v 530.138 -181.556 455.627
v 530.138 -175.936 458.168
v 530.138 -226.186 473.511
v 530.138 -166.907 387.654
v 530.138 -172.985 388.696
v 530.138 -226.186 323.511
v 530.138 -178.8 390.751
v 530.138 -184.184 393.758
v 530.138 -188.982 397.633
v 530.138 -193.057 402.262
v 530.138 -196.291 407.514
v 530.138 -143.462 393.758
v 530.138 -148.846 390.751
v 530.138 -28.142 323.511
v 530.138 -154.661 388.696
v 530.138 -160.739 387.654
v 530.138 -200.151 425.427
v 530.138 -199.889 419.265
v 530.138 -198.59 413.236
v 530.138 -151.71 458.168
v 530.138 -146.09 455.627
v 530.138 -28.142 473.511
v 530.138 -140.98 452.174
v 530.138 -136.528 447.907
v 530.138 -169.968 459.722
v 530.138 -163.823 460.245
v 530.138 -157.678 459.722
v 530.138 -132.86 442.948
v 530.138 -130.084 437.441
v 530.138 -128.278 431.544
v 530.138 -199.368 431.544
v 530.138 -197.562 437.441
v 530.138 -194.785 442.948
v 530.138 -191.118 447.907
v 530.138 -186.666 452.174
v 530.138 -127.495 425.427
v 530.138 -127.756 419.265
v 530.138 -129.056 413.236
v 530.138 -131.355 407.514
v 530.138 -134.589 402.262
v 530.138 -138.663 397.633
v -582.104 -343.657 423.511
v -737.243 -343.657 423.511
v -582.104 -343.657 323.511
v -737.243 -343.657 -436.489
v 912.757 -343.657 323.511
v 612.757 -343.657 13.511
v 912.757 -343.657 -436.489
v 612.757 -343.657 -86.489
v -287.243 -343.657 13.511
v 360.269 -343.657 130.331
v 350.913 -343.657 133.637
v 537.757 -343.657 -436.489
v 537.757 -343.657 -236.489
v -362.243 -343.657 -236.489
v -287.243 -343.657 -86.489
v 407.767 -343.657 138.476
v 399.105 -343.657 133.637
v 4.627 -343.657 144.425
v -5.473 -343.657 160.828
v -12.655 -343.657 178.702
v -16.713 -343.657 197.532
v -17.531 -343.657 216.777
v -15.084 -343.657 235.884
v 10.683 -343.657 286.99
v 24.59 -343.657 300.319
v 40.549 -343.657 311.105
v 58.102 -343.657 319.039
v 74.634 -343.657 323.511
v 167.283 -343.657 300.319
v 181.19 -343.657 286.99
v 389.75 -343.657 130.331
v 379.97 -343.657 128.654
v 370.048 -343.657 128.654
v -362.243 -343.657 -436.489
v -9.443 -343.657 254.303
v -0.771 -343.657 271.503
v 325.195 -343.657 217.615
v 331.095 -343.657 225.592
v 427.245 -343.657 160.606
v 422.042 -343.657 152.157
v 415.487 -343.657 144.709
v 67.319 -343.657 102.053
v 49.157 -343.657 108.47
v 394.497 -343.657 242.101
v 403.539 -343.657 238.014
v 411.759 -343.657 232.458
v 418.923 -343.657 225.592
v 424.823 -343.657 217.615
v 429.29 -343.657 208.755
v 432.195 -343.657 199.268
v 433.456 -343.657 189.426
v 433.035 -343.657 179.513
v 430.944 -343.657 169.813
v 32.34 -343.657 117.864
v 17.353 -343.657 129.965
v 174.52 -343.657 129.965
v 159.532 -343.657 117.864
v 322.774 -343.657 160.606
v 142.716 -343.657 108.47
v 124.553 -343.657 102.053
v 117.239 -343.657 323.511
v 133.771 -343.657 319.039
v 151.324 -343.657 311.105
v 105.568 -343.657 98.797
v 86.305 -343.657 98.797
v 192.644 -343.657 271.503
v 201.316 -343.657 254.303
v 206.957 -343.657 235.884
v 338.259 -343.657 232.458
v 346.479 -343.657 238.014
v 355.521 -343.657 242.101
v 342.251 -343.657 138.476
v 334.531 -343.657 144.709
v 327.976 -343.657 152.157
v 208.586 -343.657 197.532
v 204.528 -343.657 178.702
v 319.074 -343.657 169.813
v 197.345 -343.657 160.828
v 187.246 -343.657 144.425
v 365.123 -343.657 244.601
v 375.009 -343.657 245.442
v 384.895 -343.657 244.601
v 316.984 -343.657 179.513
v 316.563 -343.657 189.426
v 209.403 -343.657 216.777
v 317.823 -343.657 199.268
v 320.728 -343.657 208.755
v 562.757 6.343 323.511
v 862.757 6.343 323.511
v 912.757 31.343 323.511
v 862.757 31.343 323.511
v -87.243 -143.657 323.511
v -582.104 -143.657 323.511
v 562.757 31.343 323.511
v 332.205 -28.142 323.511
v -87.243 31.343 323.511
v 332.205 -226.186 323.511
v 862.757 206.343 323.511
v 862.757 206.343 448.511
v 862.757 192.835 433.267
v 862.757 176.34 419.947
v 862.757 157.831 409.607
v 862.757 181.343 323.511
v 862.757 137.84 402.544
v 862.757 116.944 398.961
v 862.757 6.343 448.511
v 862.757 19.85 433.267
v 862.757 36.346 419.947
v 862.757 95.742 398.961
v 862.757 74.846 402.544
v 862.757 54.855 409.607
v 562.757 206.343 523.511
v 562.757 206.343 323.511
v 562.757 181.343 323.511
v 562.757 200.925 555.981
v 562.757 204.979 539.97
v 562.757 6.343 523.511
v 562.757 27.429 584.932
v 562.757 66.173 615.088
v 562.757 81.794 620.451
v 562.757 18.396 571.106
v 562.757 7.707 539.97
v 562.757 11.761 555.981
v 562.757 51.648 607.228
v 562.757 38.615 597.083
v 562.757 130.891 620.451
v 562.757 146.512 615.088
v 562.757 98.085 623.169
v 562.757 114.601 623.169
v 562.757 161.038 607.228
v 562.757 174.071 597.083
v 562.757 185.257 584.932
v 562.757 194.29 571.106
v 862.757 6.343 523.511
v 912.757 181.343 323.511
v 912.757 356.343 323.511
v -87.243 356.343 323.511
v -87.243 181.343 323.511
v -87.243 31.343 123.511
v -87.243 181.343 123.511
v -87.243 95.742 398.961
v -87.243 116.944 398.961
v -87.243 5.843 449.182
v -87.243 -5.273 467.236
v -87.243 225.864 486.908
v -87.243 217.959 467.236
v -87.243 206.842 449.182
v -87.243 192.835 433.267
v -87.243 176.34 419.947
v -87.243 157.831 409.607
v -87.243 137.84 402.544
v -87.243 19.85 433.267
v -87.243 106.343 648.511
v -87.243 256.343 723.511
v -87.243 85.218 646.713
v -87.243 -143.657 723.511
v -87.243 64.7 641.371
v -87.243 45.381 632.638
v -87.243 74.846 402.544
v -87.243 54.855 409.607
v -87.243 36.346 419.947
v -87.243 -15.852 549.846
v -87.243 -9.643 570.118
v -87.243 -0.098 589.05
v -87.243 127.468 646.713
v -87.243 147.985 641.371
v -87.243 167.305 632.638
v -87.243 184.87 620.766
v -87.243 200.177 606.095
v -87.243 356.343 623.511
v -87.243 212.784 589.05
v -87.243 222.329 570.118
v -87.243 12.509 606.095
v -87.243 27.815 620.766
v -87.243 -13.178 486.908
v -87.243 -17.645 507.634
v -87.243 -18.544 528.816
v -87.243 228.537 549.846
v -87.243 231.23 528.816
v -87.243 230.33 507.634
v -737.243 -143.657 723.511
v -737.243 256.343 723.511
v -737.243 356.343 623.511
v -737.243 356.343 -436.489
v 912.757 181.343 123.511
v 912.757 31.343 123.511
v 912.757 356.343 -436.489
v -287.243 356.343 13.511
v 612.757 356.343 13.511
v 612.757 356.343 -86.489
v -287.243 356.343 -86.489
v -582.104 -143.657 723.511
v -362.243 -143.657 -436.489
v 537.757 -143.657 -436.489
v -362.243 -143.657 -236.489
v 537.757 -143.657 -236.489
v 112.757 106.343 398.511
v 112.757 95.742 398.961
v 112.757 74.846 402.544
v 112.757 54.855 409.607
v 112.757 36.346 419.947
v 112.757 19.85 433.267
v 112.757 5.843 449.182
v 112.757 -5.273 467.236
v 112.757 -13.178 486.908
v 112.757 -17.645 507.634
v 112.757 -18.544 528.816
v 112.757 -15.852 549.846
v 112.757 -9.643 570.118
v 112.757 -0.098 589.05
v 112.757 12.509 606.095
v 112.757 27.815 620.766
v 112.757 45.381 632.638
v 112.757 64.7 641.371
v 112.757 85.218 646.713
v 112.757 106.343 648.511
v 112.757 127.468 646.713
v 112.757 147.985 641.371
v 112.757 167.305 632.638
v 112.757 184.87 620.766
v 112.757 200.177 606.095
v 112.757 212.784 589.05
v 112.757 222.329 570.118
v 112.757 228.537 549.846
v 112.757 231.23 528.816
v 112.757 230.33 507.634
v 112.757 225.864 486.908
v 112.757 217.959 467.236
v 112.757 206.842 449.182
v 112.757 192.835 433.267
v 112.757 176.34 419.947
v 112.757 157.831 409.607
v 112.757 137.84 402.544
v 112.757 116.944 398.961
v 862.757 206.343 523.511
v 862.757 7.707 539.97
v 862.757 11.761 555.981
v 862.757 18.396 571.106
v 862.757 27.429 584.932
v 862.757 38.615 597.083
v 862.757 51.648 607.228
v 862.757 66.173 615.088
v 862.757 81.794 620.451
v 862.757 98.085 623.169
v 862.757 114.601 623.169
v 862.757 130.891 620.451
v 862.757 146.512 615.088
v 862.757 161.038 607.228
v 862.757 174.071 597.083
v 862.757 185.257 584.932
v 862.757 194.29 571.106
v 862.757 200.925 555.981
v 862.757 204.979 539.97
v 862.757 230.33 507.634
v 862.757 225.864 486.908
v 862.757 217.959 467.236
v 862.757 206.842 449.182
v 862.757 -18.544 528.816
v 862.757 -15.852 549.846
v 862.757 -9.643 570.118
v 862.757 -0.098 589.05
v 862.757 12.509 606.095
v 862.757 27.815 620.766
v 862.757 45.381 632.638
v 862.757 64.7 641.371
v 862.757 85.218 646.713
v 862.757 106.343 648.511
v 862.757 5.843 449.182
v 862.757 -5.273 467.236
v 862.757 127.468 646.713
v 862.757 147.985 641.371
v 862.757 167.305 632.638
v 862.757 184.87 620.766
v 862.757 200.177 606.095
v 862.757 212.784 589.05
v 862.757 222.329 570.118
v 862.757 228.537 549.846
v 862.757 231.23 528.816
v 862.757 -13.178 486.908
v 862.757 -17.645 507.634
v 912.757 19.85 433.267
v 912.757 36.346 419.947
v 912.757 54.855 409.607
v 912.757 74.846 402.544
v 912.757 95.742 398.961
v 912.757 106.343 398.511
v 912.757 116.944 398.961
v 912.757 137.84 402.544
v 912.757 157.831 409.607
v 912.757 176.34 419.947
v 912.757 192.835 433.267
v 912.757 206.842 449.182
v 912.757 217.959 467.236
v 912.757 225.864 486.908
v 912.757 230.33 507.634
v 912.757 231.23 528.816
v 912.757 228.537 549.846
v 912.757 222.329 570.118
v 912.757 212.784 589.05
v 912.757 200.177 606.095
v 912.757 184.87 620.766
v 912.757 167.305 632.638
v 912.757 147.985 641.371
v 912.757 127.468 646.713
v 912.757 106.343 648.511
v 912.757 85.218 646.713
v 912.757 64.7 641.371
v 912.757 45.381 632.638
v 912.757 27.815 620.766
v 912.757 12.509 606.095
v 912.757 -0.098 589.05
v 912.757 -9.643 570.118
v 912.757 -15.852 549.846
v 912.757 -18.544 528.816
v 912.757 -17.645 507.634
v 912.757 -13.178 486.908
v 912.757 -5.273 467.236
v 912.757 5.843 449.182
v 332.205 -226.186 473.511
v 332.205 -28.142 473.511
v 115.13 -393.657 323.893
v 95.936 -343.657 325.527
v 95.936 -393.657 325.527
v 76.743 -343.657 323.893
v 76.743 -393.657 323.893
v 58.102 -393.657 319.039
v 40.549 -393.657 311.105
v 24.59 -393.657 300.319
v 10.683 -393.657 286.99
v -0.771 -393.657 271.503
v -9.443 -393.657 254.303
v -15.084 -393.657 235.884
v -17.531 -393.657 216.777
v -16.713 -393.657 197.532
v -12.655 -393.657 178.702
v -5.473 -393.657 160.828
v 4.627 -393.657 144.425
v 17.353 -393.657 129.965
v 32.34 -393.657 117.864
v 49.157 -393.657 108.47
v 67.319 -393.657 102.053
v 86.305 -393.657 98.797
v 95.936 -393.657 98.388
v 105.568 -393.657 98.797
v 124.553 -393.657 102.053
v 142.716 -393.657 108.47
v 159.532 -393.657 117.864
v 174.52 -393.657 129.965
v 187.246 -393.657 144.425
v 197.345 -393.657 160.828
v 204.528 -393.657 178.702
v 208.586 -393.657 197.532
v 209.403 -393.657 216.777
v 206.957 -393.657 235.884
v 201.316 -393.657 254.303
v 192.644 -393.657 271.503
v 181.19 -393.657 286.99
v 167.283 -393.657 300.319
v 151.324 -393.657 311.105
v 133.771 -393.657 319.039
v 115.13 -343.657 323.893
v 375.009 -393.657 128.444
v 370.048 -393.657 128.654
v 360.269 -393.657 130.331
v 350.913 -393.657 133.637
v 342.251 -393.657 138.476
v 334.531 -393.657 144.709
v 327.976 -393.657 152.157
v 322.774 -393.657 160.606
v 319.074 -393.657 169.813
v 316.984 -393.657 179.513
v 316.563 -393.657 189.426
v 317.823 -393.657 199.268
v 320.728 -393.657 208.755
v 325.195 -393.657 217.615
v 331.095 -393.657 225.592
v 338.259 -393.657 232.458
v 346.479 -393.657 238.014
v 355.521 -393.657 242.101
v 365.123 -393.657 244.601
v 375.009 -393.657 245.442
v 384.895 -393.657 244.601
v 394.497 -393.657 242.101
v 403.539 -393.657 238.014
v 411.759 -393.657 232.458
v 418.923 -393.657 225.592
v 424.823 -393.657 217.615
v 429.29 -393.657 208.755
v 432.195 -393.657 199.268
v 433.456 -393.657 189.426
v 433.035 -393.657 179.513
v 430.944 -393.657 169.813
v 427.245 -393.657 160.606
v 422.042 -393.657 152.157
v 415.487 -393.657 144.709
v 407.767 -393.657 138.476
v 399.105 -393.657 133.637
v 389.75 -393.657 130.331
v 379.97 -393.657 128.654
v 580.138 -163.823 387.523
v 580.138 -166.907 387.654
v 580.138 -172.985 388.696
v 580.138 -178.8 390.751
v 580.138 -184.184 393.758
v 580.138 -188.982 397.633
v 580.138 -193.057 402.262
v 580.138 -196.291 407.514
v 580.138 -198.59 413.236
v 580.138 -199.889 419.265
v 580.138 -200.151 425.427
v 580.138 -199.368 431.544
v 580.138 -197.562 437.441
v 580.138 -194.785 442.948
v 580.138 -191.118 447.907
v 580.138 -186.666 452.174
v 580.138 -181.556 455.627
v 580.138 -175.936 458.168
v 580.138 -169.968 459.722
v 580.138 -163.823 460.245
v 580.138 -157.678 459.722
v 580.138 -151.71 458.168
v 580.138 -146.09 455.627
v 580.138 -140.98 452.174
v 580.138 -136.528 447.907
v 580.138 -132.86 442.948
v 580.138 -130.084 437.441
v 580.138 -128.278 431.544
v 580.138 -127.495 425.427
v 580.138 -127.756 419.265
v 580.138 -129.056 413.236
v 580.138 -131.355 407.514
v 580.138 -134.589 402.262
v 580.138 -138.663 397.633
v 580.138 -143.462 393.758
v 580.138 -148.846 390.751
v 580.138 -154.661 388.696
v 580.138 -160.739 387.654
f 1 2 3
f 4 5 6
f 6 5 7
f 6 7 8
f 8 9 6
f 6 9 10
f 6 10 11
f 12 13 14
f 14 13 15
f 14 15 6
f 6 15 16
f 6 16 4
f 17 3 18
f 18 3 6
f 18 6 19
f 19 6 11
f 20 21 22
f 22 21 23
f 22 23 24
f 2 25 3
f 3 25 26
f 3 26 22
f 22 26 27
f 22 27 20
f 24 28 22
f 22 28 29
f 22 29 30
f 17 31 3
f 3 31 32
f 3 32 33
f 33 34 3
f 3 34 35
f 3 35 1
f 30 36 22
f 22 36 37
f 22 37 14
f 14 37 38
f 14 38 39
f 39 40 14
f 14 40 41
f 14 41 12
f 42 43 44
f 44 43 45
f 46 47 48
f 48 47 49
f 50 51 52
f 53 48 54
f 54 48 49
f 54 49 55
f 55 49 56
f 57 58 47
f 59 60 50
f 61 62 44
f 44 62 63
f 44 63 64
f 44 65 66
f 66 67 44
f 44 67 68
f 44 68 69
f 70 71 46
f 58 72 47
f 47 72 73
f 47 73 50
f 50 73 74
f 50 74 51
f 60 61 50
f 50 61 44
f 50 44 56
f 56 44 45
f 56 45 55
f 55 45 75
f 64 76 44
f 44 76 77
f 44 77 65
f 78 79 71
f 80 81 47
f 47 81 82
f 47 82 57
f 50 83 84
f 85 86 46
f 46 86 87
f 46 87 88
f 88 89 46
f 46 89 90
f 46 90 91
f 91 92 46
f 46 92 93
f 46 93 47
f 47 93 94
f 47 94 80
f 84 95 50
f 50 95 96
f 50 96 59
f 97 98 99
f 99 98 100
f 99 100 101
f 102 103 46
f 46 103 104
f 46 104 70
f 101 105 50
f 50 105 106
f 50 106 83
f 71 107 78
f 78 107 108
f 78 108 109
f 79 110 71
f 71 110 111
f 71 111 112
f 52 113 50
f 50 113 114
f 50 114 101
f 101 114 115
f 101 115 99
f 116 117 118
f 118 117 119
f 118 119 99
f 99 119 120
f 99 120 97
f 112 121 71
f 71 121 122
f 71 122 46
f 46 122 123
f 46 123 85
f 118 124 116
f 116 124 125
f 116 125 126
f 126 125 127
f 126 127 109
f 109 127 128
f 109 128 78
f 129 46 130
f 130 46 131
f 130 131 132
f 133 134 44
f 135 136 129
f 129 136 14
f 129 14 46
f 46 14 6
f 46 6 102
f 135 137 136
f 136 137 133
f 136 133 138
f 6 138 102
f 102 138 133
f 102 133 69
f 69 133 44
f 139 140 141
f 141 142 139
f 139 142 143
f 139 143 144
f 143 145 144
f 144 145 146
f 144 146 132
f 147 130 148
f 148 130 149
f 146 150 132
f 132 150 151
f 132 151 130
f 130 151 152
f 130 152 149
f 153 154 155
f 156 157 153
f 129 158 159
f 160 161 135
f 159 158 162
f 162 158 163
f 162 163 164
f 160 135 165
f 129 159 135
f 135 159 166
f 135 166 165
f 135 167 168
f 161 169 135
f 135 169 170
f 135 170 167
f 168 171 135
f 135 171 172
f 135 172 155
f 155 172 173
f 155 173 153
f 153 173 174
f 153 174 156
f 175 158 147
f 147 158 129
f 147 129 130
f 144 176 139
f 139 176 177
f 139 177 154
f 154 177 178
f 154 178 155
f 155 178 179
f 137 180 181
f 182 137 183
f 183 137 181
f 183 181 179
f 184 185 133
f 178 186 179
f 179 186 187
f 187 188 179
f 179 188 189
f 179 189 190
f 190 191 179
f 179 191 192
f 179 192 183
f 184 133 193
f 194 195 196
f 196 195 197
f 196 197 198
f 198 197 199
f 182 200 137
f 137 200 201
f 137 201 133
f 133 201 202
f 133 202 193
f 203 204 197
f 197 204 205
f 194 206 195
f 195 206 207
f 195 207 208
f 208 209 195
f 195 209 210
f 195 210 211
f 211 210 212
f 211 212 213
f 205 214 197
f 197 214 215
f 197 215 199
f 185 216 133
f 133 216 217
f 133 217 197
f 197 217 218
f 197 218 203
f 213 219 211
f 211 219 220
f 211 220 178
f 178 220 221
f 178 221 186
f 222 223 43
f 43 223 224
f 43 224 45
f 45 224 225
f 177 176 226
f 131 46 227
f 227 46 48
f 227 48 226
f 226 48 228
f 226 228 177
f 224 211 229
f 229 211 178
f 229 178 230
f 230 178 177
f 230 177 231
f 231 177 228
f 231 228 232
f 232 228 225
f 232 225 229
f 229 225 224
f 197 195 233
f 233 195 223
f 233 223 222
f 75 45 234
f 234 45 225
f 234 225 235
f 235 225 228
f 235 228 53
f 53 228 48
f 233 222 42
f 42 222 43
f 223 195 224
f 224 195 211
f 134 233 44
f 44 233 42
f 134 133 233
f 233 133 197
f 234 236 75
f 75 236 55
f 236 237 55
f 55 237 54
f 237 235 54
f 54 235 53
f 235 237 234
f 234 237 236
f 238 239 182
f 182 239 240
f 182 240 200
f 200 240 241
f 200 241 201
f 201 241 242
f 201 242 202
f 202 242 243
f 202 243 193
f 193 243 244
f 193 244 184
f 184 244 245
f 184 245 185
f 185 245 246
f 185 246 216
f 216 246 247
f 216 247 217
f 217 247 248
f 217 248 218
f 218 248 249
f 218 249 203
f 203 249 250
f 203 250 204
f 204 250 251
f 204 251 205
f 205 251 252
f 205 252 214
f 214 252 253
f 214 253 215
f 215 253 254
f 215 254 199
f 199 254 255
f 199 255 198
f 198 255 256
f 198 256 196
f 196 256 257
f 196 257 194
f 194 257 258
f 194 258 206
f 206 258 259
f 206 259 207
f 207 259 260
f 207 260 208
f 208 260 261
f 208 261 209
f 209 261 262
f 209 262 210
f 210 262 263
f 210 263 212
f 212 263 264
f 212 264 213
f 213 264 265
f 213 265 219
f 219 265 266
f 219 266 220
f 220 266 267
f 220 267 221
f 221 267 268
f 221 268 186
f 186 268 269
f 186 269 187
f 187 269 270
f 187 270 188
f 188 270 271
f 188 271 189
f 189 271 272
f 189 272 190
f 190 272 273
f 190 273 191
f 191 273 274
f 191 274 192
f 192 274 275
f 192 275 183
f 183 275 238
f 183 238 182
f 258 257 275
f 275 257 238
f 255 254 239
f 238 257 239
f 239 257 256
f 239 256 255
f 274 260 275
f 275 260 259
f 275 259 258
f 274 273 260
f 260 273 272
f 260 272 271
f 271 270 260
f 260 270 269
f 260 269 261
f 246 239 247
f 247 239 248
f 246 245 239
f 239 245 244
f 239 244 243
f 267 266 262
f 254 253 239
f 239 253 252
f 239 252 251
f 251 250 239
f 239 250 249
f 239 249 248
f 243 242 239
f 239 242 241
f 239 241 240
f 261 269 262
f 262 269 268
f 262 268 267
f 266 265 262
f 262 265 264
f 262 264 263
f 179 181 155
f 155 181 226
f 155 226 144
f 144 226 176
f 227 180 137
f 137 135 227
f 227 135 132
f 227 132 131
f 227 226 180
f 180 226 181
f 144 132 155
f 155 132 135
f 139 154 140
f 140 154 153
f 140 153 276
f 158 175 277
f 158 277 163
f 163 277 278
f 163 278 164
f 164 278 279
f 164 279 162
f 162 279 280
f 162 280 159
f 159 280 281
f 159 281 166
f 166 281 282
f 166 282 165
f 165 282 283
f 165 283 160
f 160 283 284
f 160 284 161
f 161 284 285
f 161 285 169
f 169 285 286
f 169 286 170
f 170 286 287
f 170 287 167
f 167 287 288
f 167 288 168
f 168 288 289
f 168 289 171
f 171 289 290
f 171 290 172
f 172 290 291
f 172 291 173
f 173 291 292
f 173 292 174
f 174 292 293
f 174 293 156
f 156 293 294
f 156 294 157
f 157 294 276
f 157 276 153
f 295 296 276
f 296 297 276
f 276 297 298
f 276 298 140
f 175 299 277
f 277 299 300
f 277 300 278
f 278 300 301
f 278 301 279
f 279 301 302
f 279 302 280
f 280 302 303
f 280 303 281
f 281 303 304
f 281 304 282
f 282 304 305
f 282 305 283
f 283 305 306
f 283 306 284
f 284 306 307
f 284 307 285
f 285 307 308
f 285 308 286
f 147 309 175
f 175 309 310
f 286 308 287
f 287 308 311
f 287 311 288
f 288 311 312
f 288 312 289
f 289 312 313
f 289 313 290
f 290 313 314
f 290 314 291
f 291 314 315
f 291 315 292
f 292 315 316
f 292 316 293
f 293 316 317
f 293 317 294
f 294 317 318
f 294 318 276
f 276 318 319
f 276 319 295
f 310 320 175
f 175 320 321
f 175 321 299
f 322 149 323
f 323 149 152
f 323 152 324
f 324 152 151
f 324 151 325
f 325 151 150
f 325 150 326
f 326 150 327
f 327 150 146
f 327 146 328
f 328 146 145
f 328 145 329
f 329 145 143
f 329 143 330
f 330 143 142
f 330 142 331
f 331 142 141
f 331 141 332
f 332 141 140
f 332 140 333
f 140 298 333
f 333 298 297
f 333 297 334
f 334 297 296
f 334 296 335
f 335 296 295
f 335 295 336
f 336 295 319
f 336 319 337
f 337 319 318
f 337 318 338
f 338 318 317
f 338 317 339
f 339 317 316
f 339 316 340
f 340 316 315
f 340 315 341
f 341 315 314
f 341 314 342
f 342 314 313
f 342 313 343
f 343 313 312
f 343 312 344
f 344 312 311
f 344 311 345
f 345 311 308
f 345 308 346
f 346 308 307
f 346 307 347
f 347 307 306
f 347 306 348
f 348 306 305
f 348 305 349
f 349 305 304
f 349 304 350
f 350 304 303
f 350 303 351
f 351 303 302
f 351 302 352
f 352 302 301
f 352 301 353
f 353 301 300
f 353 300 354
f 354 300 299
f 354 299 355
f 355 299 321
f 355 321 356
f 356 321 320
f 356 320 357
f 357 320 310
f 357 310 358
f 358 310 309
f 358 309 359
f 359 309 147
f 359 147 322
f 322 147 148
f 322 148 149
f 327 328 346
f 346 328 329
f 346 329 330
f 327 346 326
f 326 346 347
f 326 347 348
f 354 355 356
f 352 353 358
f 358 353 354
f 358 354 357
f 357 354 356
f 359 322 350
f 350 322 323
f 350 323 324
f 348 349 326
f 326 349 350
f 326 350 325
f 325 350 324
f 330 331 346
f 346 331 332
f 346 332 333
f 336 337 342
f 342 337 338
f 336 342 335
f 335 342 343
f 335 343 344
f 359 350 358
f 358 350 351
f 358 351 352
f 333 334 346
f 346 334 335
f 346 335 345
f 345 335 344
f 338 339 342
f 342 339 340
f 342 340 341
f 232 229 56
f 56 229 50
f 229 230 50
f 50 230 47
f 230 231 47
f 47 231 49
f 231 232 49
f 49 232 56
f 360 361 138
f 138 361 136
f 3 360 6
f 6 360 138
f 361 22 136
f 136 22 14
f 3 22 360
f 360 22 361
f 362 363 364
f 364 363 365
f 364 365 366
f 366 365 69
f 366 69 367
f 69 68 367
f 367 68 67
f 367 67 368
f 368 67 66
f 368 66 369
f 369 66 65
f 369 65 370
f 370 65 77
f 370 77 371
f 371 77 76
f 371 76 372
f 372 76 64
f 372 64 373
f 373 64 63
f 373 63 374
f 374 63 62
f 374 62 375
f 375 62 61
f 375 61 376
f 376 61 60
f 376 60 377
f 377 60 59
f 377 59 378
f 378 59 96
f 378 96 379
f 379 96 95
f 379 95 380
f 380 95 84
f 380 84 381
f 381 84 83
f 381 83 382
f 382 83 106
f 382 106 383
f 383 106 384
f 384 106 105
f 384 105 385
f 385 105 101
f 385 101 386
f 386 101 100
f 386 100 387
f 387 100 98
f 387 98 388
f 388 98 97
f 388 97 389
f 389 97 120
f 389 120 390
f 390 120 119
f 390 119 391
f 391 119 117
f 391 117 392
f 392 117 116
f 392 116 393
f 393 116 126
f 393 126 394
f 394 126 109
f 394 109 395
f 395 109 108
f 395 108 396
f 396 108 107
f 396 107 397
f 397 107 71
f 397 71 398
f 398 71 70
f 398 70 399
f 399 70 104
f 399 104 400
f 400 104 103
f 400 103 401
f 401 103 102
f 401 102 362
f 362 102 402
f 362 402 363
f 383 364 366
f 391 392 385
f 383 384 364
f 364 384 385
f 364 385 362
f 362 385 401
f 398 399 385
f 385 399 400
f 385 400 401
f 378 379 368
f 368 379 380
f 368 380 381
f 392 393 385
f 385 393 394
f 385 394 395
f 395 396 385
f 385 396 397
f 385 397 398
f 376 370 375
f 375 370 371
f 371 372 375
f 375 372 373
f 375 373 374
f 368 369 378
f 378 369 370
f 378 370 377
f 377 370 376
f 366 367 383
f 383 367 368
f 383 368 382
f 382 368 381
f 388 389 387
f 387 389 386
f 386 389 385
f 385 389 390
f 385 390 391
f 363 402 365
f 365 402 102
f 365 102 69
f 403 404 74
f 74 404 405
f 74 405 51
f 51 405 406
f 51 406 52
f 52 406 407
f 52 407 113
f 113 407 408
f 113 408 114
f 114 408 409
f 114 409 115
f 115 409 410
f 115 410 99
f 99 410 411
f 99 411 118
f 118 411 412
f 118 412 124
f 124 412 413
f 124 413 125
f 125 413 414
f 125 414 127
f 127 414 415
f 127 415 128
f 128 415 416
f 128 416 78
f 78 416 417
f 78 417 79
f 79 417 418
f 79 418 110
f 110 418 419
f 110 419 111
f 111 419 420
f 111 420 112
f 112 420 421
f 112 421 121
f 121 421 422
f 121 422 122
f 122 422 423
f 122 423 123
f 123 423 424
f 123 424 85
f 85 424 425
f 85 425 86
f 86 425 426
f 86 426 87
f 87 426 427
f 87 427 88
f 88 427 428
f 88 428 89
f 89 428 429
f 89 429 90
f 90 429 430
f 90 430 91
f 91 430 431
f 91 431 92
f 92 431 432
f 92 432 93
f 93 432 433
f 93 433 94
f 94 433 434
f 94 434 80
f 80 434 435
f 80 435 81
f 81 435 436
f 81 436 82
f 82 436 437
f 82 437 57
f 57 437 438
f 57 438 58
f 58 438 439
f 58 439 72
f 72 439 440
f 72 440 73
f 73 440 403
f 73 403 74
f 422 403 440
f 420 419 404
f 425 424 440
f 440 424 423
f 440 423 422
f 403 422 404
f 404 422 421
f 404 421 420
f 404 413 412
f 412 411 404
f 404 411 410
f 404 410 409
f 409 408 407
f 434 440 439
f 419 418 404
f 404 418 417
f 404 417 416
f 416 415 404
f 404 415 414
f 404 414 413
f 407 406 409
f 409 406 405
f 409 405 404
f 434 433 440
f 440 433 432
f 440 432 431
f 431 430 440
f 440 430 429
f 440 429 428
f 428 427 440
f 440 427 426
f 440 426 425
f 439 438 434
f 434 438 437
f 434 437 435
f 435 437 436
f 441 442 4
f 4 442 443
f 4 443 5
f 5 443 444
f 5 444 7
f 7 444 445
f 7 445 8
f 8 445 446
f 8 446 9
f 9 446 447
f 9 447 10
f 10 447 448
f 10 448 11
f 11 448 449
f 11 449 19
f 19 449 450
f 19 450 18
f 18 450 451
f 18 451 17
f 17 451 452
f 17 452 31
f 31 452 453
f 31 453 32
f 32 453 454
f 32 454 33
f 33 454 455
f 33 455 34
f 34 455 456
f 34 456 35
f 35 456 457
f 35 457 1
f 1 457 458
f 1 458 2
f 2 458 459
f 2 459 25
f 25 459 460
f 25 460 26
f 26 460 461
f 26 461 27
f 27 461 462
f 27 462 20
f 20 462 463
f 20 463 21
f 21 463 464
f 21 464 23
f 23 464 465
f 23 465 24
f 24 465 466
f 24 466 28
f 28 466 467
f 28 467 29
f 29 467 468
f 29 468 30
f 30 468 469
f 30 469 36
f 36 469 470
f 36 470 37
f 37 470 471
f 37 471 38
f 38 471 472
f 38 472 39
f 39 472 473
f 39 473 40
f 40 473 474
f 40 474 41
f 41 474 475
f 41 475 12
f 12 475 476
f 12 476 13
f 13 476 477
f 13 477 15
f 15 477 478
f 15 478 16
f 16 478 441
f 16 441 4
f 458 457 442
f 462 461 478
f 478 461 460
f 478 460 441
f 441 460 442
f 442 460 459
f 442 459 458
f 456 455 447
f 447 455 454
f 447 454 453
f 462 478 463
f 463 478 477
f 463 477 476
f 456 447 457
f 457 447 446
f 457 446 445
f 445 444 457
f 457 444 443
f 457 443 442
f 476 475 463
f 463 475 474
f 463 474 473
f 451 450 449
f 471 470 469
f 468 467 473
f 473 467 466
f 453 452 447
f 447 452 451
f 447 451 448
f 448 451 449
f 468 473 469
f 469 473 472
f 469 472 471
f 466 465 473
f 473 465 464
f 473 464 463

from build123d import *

# Parameters (mm, degrees)
SKETCH_1_W          = 165
SKETCH_1_H          = 70
EXTRUDE_1_DEPTH     = 116
SKETCH_2_W          = 100
SKETCH_2_H          = 40
CUT_EXTRUDE_1_DEPTH = 170.680327977
CUT_EXTRUDE_2_DEPTH = 70
SKETCH_4_W          = 49.486084661
SKETCH_4_H          = 20
CUT_EXTRUDE_3_DEPTH = 40
SKETCH_5_W          = 90
SKETCH_5_H          = 20
CUT_EXTRUDE_4_DEPTH = 20
SKETCH_6_R          = 12.5
EXTRUDE_2_DEPTH     = 20
SKETCH_7_W          = 100
SKETCH_7_H          = 15
CUT_EXTRUDE_5_DEPTH = 20
SKETCH_8_W          = 30
SKETCH_8_H          = 20
EXTRUDE_3_DEPTH     = 30
CUT_EXTRUDE_6_DEPTH = 30
SKETCH_10_R         = 12.5
EXTRUDE_5_DEPTH     = 5
SKETCH_11_W         = 90
SKETCH_11_H         = 10
CUT_EXTRUDE_7_DEPTH = 170.680327977
SKETCH_12_W         = 19.793287236
SKETCH_12_H         = 19.804361638
EXTRUDE_6_DEPTH     = 15
SKETCH_13_R         = 11.356941905
SKETCH_13_R_2       = 5.84992953
EXTRUDE_7_DEPTH     = 5
SKETCH_14_R         = 3.636100405
EXTRUDE_8_DEPTH     = 5
SCALE_1_SCALE       = 10


with BuildPart() as part:
    # ｽｹｯﾁ1 → ﾎﾞｽ - 押し出し1 (new body)
    with BuildSketch(Plane.XY):
        with Locations((19.653872675, 23.252863688)):
            Rectangle(SKETCH_1_W, SKETCH_1_H)
    extrude(amount=EXTRUDE_1_DEPTH)

    # ｽｹｯﾁ2 → ｶｯﾄ - 押し出し1 (cut, through all)
    with BuildSketch(Plane(origin=(0, -11.747136312, 0), x_dir=(-1, 0, 0), z_dir=(0, -1, 0))):
        with Locations((-52.153872675, -96)):
            Rectangle(SKETCH_2_W, SKETCH_2_H)
    extrude(amount=-CUT_EXTRUDE_1_DEPTH, mode=Mode.SUBTRACT)

    # ｽｹｯﾁ3 → ｶｯﾄ - 押し出し2 (cut)
    with BuildSketch(Plane.ZY.offset(62.846127325)):
        Polygon((116, -11.747136312), (116, 8.252863688), (86, -11.747136312), align=None)
        Polygon((116, 58.252863688), (106, 58.252863688), (116, 48.252863688), align=None)
    extrude(amount=-CUT_EXTRUDE_2_DEPTH, mode=Mode.SUBTRACT)

    # ｽｹｯﾁ4 → ｶｯﾄ - 押し出し3 (cut)
    with BuildSketch(Plane.XY.offset(116)):
        with Locations((-22.589169656, -1.747136312)):
            Rectangle(SKETCH_4_W, SKETCH_4_H)
    extrude(amount=-CUT_EXTRUDE_3_DEPTH, mode=Mode.SUBTRACT)

    # ｽｹｯﾁ5 → ｶｯﾄ - 押し出し4 (cut)
    with BuildSketch(Plane(origin=(0, -11.747136312, 0), x_dir=(-1, 0, 0), z_dir=(0, -1, 0))):
        with Locations((-19.653872675, -10)):
            Rectangle(SKETCH_5_W, SKETCH_5_H)
    extrude(amount=-CUT_EXTRUDE_4_DEPTH, mode=Mode.SUBTRACT)

    # ｽｹｯﾁ6 → ﾎﾞｽ - 押し出し2 (add)
    with BuildSketch(Plane(origin=(2.153872675, 0, 0), x_dir=(0, 0, -1), z_dir=(1, 0, 0))):
        with Locations(Location((-96, 33.252863688, 0), (0, 0, 180))):
            Circle(SKETCH_6_R)
    extrude(amount=EXTRUDE_2_DEPTH)

    # ｽｹｯﾁ7 → ｶｯﾄ - 押し出し5 (cut)
    with BuildSketch(Plane.XY.offset(76)):
        with Locations((52.153872675, 33.252863688)):
            Rectangle(SKETCH_7_W, SKETCH_7_H)
    extrude(amount=-CUT_EXTRUDE_5_DEPTH, mode=Mode.SUBTRACT)

    # ｽｹｯﾁ8 → ﾎﾞｽ - 押し出し3 (add)
    with BuildSketch(Plane.XY.offset(76)):
        with Locations((82.153872675, 33.252863688)):
            Rectangle(SKETCH_8_W, SKETCH_8_H)
    extrude(amount=EXTRUDE_3_DEPTH)

    # ｽｹｯﾁ9 → ｶｯﾄ - 押し出し6 (cut)
    with BuildSketch(Plane(origin=(97.153872675, 0, 0), x_dir=(0, 0, -1), z_dir=(1, 0, 0))):
        with BuildLine():
            ThreePointArc((-106, 33.252863688), (-103.071067812, 40.3239315), (-96, 43.252863688))
            Line((-96, 43.252863688), (-106, 43.252863688))
            Line((-106, 43.252863688), (-106, 33.252863688))
        make_face()
        with BuildLine():
            ThreePointArc((-96, 23.252863688), (-103.071067812, 26.181795877), (-106, 33.252863688))
            Line((-106, 33.252863688), (-106, 23.252863688))
            Line((-106, 23.252863688), (-96, 23.252863688))
        make_face()
    extrude(amount=-CUT_EXTRUDE_6_DEPTH, mode=Mode.SUBTRACT)

    # ｽｹｯﾁ10 → ﾎﾞｽ - 押し出し5 (add)
    with BuildSketch(Plane(origin=(97.153872675, 0, 0), x_dir=(0, 0, -1), z_dir=(1, 0, 0))):
        with Locations(Location((-96, 33.252863688, 0), (0, 0, 180))):
            Circle(SKETCH_10_R)
    extrude(amount=EXTRUDE_5_DEPTH)

    # ｽｹｯﾁ11 → ｶｯﾄ - 押し出し7 (cut, through all)
    with BuildSketch(Plane.XZ.offset(11.747136312)):
        with Locations((27.153872675, 40)):
            Rectangle(SKETCH_11_W, SKETCH_11_H)
    extrude(amount=-CUT_EXTRUDE_7_DEPTH, mode=Mode.SUBTRACT)

    # ｽｹｯﾁ12 → ﾎﾞｽ - 押し出し6 (add)
    with BuildSketch(Plane.XY.offset(76)):
        with Locations((53.995302242, 9.902180819)):
            Rectangle(SKETCH_12_W, SKETCH_12_H)
    extrude(amount=EXTRUDE_6_DEPTH)

    # ｽｹｯﾁ13 → ﾎﾞｽ - 押し出し7 (add)
    with BuildSketch(Plane(origin=(0, -11.747136312, 0), x_dir=(-1, 0, 0), z_dir=(0, -1, 0))):
        with Locations(Location((-20.471789783, -64.844641849, 0), (0, 0, 280.811331396))):
            Circle(SKETCH_13_R)
        with Locations(Location((-48.379056958, -62.343196008, 0), (0, 0, 270))):
            Circle(SKETCH_13_R_2)
    extrude(amount=EXTRUDE_7_DEPTH)

    # ｽｹｯﾁ14 → ﾎﾞｽ - 押し出し8 (add)
    with BuildSketch(Plane(origin=(63.89194586, 0, 0), x_dir=(0, 0, -1), z_dir=(1, 0, 0))):
        with Locations(Location((-86.03727841, 6.236286701, 0), (0, 0, 180))):
            Circle(SKETCH_14_R)
    extrude(amount=EXTRUDE_8_DEPTH)


with BuildPart() as part_1:
    # ｽｹｰﾙ1: scaled about (12.08683356, 25.131751334, 48.498774543)
    add(part.part.scale(SCALE_1_SCALE).moved(Location((-108.78150204, -226.185762006, -436.488970887))))


solid = part_1.part
